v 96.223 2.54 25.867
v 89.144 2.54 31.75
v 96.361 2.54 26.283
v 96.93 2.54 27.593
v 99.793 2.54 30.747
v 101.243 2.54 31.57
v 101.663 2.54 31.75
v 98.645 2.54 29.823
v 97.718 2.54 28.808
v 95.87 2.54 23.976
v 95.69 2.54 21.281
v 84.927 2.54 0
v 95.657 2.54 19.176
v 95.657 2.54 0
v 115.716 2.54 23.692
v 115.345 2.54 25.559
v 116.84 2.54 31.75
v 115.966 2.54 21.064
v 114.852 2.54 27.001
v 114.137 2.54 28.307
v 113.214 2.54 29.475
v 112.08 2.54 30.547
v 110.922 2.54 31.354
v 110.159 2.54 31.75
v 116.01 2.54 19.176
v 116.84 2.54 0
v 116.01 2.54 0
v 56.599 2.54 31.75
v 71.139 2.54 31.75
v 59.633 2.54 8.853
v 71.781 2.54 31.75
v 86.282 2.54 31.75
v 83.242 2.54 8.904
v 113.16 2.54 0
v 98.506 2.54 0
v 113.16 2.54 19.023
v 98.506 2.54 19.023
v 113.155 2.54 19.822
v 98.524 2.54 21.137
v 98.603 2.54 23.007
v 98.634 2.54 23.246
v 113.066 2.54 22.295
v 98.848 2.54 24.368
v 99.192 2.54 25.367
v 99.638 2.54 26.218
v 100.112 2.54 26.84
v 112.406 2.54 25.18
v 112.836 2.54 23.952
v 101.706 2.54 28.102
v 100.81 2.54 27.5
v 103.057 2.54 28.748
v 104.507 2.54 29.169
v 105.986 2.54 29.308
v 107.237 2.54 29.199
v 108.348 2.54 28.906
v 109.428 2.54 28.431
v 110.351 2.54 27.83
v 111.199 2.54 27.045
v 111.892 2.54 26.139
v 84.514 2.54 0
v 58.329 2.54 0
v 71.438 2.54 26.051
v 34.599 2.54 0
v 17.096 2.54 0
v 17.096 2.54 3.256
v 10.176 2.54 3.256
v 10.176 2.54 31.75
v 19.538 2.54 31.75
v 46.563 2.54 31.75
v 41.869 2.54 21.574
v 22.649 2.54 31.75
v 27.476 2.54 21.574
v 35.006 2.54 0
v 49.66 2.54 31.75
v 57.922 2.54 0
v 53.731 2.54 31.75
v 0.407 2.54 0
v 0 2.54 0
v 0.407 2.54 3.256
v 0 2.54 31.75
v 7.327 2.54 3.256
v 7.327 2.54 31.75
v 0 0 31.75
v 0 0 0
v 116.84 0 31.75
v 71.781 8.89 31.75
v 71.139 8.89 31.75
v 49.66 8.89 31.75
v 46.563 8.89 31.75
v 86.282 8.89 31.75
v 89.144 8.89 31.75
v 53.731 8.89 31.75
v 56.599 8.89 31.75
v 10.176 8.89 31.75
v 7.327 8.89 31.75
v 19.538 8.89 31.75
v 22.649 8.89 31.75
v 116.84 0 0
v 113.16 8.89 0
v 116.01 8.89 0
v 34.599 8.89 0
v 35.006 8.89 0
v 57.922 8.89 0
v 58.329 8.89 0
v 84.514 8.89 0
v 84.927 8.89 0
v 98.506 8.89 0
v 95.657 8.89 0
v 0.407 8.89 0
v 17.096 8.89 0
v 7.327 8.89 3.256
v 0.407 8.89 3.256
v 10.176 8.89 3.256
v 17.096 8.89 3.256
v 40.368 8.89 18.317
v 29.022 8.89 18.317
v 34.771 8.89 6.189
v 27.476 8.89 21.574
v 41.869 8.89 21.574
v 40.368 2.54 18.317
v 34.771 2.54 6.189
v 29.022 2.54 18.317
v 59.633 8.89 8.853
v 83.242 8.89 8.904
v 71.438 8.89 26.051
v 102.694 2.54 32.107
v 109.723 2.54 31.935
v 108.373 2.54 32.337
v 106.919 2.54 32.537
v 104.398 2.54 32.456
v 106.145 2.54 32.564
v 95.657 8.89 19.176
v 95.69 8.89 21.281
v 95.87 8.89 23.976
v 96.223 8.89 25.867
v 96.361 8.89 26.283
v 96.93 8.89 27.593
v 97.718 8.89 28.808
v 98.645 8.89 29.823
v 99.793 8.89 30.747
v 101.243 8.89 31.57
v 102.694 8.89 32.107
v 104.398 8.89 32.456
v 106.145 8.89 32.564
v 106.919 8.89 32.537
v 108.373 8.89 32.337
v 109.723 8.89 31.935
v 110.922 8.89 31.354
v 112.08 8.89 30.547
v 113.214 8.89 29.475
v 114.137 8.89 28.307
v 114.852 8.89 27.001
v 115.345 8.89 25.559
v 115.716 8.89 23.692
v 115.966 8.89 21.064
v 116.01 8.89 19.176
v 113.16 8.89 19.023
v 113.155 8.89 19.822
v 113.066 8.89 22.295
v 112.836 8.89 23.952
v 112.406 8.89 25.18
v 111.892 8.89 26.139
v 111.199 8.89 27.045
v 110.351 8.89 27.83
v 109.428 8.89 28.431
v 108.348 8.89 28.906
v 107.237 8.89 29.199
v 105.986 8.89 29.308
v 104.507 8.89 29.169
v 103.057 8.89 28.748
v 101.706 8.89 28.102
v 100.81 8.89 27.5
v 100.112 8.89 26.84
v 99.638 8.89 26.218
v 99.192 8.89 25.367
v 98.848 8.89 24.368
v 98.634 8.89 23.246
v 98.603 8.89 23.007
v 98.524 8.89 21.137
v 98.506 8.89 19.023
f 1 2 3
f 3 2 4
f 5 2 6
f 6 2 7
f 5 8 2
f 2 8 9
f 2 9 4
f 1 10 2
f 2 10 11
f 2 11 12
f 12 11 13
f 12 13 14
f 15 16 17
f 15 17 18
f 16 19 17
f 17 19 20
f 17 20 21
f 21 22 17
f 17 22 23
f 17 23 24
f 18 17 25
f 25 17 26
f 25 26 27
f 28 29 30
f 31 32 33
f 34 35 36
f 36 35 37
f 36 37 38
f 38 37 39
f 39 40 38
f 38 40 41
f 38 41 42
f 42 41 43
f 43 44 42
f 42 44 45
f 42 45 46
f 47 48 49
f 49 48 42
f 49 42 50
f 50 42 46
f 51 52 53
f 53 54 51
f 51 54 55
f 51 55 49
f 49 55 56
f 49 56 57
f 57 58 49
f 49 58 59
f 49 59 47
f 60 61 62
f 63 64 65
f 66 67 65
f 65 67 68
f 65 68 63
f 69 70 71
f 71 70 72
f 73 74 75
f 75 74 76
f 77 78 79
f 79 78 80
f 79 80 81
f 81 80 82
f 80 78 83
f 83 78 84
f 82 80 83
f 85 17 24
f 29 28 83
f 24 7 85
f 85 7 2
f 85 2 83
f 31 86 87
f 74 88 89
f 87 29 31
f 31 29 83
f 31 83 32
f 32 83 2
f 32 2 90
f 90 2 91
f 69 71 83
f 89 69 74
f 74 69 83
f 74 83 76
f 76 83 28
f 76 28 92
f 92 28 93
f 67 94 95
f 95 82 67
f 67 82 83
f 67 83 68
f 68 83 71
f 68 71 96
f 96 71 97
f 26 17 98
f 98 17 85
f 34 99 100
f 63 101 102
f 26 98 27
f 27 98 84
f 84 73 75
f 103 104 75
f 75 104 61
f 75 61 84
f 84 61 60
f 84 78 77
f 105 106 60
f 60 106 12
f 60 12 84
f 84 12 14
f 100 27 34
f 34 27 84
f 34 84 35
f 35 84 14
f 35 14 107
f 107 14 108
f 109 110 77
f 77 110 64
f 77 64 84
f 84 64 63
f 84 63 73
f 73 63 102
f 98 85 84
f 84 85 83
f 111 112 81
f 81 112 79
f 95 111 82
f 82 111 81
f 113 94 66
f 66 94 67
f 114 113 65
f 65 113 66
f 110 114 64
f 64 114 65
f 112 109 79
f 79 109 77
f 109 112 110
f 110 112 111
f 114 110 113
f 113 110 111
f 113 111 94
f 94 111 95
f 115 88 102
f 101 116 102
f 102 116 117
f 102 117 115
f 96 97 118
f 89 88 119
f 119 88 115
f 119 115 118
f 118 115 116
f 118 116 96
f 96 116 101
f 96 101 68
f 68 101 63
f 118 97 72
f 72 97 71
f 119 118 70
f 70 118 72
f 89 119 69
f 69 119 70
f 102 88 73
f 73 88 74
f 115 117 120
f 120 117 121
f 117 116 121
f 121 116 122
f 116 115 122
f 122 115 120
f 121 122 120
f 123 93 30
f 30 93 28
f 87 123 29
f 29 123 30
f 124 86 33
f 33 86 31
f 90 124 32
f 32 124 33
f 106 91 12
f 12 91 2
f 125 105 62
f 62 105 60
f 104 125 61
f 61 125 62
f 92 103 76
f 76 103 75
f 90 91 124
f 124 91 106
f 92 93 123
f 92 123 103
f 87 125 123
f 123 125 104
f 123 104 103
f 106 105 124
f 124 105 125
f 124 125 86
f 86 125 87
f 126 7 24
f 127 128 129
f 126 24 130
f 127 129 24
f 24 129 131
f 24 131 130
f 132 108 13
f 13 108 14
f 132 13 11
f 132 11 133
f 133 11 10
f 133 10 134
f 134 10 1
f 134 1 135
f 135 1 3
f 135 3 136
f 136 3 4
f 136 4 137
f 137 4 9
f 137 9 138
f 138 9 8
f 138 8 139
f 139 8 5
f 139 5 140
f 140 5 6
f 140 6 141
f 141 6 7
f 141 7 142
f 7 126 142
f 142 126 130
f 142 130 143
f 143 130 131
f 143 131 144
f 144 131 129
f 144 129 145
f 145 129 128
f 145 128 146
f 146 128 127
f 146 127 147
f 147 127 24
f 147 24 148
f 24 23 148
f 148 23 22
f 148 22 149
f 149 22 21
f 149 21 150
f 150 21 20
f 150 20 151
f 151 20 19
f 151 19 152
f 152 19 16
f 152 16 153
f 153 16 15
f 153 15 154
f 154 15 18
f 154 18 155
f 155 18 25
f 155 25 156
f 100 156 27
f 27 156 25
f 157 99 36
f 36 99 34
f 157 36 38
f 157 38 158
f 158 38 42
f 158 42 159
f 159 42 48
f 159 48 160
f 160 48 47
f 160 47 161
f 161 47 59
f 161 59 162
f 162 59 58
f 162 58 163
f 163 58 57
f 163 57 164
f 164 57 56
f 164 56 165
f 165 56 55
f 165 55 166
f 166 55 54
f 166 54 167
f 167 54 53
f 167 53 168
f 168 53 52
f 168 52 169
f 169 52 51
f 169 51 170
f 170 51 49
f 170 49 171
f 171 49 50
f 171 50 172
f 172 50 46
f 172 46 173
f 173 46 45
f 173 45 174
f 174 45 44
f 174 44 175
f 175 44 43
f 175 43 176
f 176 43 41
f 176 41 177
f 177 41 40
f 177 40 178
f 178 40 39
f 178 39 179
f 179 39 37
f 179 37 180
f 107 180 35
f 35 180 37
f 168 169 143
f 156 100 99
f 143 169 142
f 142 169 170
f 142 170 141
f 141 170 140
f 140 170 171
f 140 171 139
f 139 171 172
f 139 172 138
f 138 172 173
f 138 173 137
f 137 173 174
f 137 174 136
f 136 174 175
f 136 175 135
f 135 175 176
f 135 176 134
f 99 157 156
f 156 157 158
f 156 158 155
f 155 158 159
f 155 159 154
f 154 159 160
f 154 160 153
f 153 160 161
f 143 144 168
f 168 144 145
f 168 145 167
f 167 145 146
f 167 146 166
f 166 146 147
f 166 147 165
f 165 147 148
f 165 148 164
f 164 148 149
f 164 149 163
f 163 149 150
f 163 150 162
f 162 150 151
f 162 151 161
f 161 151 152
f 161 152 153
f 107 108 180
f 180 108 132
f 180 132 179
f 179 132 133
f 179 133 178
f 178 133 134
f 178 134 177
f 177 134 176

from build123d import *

# Parameters (mm, degrees)
SKETCH2_W           = 116.84
SKETCH2_H           = 31.75
BOSS_EXTRUDE2_DEPTH = 2.54
BOSS_EXTRUDE5_DEPTH = 6.35


with BuildPart() as part:
    # Sketch2 → Boss-Extrude2 (new body)
    with BuildSketch(Plane(origin=(0, 0, 0), x_dir=(1, 0, 0), z_dir=(0, 1, 0))):
        with Locations((58.42, -15.875)):
            Rectangle(SKETCH2_W, SKETCH2_H)
    extrude(amount=BOSS_EXTRUDE2_DEPTH)

    # Sketch6 → Boss-Extrude5 (add)
    # profile 1 of 4: a face of its own
    with BuildSketch(Plane(origin=(0, 2.54, 0), x_dir=(1, 0, 0), z_dir=(0, 1, 0))):
        Polygon((0.407051282, -3.256410256), (0.407051282, 0), (17.096153846, 0), (17.096153846, -3.256410256), (10.176282051, -3.256410256), (10.176282051, -31.75), (7.326923077, -31.75), (7.326923077, -3.256410256), align=None)
    # profile 2 of 4: a face of its own
    with BuildSketch(Plane(origin=(0, 2.54, 0), x_dir=(1, 0, 0), z_dir=(0, 1, 0))):
        Polygon((35.006410256, 0), (49.66025641, -31.75), (46.562850561, -31.75), (41.869040465, -21.573717949), (27.475961538, -21.573717949), (22.64858774, -31.75), (19.538461538, -31.75), (34.599358974, 0), align=None)
        Polygon((34.771083734, -6.188451522), (29.021484375, -18.317307692), (40.368038862, -18.317307692), align=None, mode=Mode.SUBTRACT)
    # profile 3 of 4: a face of its own
    with BuildSketch(Plane(origin=(0, 2.54, 0), x_dir=(1, 0, 0), z_dir=(0, 1, 0))):
        Polygon((53.730769231, -31.75), (57.922125401, 0), (58.329176683, 0), (71.4375, -26.051282051), (84.514022436, 0), (84.927433894, 0), (89.144230769, -31.75), (86.282151442, -31.75), (83.241987179, -8.904246795), (71.780949519, -31.75), (71.138571715, -31.75), (59.633012821, -8.853365385), (56.599208734, -31.75), align=None)
    # profile 4 of 4: a face of its own
    with BuildSketch(Plane(origin=(0, 2.54, 0), x_dir=(1, 0, 0), z_dir=(0, 1, 0))):
        with BuildLine():
            Line((95.657051282, 0), (98.506410256, 0))
            Line((98.506410256, 0), (98.506410256, -19.02328726))
            add(Edge.make_bspline(
                [(98.506410256, -19.02328726), (98.505986222, -19.292533934), (98.505181543, -19.803475897), (98.51055649, -20.530716909), (98.525609332, -21.177259931), (98.535099494, -21.745597155), (98.556211734, -22.23312065), (98.573429731, -22.642471683), (98.595569067, -22.971711948), (98.622176633, -23.163853206), (98.633613782, -23.246444311)],
                knots=[0, 0, 0, 0, 1.528628734, 2.90083645, 4.128790002, 5.200304208, 6.127813768, 6.898992206, 7.526736466, 8, 8, 8, 8], degree=3))
            add(Edge.make_bspline(
                [(98.633613782, -23.246444311), (98.68058073, -23.544411378), (98.771868206, -24.123556136), (99.00451749, -24.948224121), (99.329433392, -25.691459492), (99.714452422, -26.376454776), (100.221841111, -26.984143971), (100.829658895, -27.543956821), (101.566057224, -28.033558192), (102.384849861, -28.481240556), (103.267365944, -28.841059518), (104.169168146, -29.11314218), (105.076700886, -29.278957914), (105.684270383, -29.298157946), (105.985977564, -29.307692308)],
                knots=[0, 0, 0, 0, 1.035780045, 2.013197591, 2.933192213, 3.817615948, 4.702609284, 5.640816605, 6.646850145, 7.73207398, 8.84249596, 9.914020372, 10.964143139, 12, 12, 12, 12], degree=3))
            add(Edge.make_bspline(
                [(105.985977564, -29.307692308), (106.245000781, -29.297950952), (106.761551163, -29.278524503), (107.529052356, -29.158224378), (108.276539056, -28.941412104), (109.007702367, -28.661651438), (109.693057725, -28.292012576), (110.332987521, -27.865012818), (110.904160353, -27.3641713), (111.425386476, -26.809903889), (111.879274822, -26.184521418), (112.272713036, -25.501641166), (112.594983969, -24.750986376), (112.754128801, -24.223442688), (112.83588742, -23.952423878)],
                knots=[0, 0, 0, 0, 0.994687771, 1.983630487, 2.973142513, 3.978332533, 4.983357753, 5.956394766, 6.925816176, 7.893390482, 8.871859704, 9.88551698, 10.913711441, 12, 12, 12, 12], degree=3))
            add(Edge.make_bspline(
                [(112.83588742, -23.952423878), (112.863102842, -23.840404668), (112.923749771, -23.590780724), (112.980419393, -23.16876616), (113.039442874, -22.670841216), (113.080396473, -22.093428342), (113.12032183, -21.438462376), (113.144207562, -20.702531326), (113.155247789, -19.888307468), (113.158537818, -19.320098929), (113.16025641, -19.02328726)],
                knots=[0, 0, 0, 0, 0.558680831, 1.244966039, 2.062412453, 2.990489873, 4.051219941, 5.244515665, 6.560634259, 8, 8, 8, 8], degree=3))
            Line((113.16025641, -19.02328726), (113.16025641, 0))
            Line((113.16025641, 0), (116.009615385, 0))
            Line((116.009615385, 0), (116.009615385, -19.17593149))
            add(Edge.make_bspline(
                [(116.009615385, -19.17593149), (116.00731015, -19.521538214), (116.002811344, -20.196010747), (115.963798971, -21.184355218), (115.901596187, -22.121914406), (115.813711389, -23.008814339), (115.697261431, -23.841881355), (115.567764788, -24.628417466), (115.402850453, -25.362776756), (115.21023317, -26.050685116), (114.990037413, -26.705510845), (114.704821282, -27.32698185), (114.383470461, -27.933991046), (114.002337538, -28.517357463), (113.574062853, -29.079664052), (113.089179749, -29.617500661), (112.563724861, -30.139462009), (111.988963142, -30.632159109), (111.374369091, -31.083994964), (110.721770904, -31.481303316), (110.036181635, -31.817160417), (109.31938342, -32.093620589), (108.571070365, -32.301488739), (107.791223602, -32.456384795), (106.978068062, -32.544398494), (106.425031538, -32.557478859), (106.144981971, -32.564102564)],
                knots=[0, 0, 0, 0, 1.316592851, 2.569410997, 3.76748051, 4.895814652, 5.963796859, 6.97159953, 7.931736103, 8.829262218, 9.692595152, 10.560224239, 11.431080259, 12.30701507, 13.211635791, 14.121146779, 15.063487852, 16.031507147, 17.00238618, 17.966455255, 18.938106653, 19.907068911, 20.888905087, 21.893141452, 22.933117798, 24, 24, 24, 24], degree=3))
            add(Edge.make_bspline(
                [(106.144981971, -32.564102564), (105.839555112, -32.556983622), (105.240308706, -32.543016283), (104.357313382, -32.462981336), (103.510820315, -32.312228759), (102.691889145, -32.120277841), (101.911669207, -31.855539652), (101.159707247, -31.546220948), (100.448882068, -31.166334373), (99.767661973, -30.743665736), (99.134251685, -30.268099376), (98.552796671, -29.749756369), (98.022336988, -29.196940088), (97.551813814, -28.603665342), (97.133431504, -27.974546285), (96.773021711, -27.307803182), (96.463565853, -26.603694171), (96.303849138, -26.114261567), (96.223106971, -25.866836939)],
                knots=[0, 0, 0, 0, 1.13879206, 2.234305948, 3.301075583, 4.341971843, 5.366689343, 6.369221514, 7.369726634, 8.367512178, 9.355451585, 10.318319045, 11.268648973, 12.207971039, 13.137398894, 14.081662264, 15.030215811, 16, 16, 16, 16], degree=3))
            add(Edge.make_bspline(
                [(96.223106971, -25.866836939), (96.176142751, -25.697812871), (96.07427631, -25.331195903), (95.965189682, -24.724439899), (95.87348587, -24.025804575), (95.787256877, -23.235242108), (95.736375616, -22.352139747), (95.691767422, -21.376880296), (95.656737023, -20.308284501), (95.656943601, -19.563932823), (95.657051282, -19.17593149)],
                knots=[0, 0, 0, 0, 0.625038921, 1.35572334, 2.194682327, 3.136881307, 4.189498639, 5.346923369, 6.617055217, 8, 8, 8, 8], degree=3))
            Line((95.657051282, -19.17593149), (95.657051282, 0))
        make_face()
    extrude(amount=BOSS_EXTRUDE5_DEPTH)


solid = part.part
